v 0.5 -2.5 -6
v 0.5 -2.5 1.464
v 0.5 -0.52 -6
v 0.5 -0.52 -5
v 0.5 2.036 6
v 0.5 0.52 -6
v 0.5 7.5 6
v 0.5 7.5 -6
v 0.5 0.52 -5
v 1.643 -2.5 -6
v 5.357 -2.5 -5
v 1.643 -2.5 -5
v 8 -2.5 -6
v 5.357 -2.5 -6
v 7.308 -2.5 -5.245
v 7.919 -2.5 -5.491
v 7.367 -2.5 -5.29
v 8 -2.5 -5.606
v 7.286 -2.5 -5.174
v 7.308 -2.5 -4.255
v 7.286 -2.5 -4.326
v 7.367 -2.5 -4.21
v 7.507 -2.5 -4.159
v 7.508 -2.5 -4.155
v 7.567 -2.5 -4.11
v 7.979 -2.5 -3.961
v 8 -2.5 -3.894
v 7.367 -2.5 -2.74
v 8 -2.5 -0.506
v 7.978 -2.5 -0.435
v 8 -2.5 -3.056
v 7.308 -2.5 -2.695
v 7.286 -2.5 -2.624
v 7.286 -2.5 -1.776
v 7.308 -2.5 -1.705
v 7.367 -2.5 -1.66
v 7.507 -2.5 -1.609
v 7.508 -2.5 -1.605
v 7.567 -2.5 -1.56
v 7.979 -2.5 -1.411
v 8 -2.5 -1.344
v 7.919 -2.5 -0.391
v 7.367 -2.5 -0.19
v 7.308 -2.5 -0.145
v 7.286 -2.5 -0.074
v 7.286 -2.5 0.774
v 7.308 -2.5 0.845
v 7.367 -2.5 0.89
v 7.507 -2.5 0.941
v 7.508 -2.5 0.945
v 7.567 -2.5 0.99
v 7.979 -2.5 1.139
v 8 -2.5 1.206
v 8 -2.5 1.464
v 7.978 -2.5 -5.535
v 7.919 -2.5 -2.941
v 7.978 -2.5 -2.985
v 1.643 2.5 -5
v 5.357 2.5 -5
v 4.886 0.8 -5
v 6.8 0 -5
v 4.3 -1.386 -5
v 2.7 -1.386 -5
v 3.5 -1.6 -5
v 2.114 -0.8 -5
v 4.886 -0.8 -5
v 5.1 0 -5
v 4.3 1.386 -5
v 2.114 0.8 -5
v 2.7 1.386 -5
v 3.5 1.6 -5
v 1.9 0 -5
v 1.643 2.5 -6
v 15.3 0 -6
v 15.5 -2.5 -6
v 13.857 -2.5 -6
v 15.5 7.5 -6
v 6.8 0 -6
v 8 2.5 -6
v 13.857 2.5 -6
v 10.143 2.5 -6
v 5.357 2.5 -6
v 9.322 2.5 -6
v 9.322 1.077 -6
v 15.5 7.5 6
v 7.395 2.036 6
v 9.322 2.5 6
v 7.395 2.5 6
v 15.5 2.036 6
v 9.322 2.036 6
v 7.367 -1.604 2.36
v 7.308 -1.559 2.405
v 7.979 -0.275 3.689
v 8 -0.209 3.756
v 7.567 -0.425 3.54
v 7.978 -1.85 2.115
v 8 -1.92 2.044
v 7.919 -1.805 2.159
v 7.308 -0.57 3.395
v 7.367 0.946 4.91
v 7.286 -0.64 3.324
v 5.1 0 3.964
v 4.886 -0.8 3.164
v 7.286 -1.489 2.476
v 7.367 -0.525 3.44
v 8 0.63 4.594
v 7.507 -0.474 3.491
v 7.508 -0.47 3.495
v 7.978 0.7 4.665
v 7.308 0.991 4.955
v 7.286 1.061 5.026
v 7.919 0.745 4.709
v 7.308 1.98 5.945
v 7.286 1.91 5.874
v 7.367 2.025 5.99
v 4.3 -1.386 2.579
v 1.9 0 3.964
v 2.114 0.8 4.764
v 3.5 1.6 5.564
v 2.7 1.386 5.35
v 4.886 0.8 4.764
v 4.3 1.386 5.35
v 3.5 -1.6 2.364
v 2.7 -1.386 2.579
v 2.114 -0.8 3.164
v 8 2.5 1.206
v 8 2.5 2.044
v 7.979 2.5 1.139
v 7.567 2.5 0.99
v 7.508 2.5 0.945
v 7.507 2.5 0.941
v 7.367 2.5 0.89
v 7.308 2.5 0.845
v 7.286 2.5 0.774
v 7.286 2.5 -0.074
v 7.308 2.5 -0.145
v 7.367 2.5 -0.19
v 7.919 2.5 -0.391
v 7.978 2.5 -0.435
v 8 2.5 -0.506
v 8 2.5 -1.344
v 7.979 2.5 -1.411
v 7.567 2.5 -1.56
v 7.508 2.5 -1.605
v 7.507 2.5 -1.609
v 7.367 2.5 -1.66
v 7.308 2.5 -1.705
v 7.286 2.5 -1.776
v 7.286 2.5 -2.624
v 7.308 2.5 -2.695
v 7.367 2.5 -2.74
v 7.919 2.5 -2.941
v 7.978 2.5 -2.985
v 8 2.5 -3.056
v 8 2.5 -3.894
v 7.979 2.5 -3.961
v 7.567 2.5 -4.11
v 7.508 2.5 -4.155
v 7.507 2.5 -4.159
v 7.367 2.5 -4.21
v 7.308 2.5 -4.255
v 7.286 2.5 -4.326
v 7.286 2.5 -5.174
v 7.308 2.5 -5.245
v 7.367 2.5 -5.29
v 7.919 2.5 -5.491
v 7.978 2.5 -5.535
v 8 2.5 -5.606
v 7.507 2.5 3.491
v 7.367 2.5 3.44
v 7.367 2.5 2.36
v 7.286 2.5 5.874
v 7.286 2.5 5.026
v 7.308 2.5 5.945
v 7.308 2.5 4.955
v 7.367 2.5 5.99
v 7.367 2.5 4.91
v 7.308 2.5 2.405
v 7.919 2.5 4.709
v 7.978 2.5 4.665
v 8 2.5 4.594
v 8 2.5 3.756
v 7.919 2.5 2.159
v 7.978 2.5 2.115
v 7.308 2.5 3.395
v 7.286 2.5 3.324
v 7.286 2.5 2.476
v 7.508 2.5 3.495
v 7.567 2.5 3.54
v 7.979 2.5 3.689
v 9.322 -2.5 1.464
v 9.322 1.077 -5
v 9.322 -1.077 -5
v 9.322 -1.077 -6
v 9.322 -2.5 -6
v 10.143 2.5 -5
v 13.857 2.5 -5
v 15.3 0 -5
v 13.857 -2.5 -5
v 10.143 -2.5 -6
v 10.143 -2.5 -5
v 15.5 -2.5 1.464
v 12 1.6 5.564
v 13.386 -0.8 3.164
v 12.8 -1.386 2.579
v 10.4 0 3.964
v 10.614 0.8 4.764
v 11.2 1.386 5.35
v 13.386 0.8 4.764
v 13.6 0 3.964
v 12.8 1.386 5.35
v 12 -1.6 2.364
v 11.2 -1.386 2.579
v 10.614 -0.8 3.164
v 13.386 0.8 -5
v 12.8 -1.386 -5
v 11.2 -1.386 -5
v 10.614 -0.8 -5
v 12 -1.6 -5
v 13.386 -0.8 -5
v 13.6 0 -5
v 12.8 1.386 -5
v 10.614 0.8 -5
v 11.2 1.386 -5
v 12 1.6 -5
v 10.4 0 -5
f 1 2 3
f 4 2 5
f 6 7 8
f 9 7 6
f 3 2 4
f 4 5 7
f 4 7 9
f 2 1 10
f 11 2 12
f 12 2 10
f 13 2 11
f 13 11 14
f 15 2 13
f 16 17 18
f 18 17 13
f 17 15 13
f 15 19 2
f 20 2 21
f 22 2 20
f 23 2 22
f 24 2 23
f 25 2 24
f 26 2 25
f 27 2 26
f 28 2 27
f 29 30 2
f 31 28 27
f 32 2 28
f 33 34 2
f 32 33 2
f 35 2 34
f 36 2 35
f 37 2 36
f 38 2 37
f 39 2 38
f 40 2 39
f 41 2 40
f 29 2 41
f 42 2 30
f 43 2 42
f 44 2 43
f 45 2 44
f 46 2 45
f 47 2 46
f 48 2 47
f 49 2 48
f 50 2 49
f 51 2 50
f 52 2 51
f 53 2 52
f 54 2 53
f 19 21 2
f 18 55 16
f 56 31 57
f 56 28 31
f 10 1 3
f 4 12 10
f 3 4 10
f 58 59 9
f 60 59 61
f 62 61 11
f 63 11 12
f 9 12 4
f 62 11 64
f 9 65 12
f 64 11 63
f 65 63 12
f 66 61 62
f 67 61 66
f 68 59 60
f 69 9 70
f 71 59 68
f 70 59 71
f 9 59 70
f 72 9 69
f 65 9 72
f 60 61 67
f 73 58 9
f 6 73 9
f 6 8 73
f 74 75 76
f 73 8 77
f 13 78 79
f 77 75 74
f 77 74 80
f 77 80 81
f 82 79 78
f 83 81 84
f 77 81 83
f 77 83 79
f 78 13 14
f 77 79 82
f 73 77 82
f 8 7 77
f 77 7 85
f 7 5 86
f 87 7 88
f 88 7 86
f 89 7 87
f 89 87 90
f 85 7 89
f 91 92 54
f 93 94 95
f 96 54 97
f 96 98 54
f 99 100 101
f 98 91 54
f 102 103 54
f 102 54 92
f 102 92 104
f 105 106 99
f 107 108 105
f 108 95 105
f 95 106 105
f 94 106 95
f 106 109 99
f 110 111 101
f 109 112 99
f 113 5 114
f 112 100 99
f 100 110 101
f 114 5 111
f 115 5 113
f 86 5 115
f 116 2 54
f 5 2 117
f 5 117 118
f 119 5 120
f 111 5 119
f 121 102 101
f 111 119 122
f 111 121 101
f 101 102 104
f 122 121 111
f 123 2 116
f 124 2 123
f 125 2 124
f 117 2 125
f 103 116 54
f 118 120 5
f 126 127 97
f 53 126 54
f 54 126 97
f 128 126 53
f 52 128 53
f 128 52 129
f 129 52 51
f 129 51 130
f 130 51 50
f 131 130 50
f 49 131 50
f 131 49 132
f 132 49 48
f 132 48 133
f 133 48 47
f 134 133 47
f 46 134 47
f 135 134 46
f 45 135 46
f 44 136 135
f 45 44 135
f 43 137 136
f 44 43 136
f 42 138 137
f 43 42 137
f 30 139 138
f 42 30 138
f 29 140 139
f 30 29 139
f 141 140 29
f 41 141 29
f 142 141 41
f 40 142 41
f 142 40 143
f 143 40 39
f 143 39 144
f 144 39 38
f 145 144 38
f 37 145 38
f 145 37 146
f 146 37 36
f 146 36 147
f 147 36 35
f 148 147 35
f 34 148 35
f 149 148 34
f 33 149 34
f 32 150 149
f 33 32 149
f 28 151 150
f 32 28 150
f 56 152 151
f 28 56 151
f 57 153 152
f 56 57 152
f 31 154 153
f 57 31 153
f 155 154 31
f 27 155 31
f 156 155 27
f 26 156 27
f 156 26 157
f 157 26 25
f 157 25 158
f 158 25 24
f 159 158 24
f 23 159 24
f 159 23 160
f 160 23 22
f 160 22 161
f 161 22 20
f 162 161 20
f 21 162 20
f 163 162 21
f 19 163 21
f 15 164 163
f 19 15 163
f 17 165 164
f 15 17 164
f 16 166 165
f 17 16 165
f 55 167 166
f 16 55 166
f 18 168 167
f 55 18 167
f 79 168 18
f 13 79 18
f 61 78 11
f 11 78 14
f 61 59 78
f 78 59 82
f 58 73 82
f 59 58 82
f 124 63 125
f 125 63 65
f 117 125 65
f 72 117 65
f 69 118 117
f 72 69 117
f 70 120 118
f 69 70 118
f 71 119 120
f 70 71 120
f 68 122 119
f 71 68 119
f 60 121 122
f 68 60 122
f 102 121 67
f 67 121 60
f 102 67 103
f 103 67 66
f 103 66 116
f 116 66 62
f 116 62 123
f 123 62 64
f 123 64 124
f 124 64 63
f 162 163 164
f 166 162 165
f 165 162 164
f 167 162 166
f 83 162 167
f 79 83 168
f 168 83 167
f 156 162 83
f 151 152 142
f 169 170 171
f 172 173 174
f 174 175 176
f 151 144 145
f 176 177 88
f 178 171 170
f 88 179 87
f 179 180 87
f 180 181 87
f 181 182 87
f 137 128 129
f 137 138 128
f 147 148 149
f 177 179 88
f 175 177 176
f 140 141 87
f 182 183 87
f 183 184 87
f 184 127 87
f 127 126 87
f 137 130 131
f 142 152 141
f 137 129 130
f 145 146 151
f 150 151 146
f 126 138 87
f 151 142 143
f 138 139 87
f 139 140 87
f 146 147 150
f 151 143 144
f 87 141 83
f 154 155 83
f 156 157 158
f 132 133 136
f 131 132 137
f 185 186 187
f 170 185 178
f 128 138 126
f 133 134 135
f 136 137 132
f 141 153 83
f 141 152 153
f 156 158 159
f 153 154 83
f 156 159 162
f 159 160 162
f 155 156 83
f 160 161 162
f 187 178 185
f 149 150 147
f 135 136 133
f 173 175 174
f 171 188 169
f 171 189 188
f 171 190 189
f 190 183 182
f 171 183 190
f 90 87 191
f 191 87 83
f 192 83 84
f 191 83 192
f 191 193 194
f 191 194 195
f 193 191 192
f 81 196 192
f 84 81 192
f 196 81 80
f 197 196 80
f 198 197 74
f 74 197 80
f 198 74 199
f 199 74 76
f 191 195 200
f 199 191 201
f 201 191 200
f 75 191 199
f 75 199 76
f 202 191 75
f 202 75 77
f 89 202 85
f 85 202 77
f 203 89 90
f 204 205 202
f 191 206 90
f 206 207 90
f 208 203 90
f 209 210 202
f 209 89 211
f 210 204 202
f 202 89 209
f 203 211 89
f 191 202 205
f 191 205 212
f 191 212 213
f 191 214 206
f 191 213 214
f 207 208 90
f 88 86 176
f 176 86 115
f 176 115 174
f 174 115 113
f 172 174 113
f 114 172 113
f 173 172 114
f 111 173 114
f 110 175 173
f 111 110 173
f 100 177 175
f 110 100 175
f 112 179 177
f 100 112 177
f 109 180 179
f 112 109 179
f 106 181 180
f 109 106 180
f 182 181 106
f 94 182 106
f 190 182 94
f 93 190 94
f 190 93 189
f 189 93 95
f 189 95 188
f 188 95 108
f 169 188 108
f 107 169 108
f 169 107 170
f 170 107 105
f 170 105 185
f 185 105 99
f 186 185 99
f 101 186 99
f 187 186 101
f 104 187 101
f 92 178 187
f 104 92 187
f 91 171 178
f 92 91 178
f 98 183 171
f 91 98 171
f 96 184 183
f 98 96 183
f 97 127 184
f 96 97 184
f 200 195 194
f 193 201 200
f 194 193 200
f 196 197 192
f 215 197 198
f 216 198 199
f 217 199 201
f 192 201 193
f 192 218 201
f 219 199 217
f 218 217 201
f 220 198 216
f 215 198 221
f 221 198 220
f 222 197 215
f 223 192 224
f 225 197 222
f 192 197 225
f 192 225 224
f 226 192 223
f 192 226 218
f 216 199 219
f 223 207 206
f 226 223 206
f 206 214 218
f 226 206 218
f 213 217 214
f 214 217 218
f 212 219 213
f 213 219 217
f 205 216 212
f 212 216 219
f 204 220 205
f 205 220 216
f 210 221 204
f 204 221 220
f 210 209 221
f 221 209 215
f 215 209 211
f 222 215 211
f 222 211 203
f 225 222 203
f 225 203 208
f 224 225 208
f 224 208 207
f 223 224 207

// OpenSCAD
// file: linear_bearing.scad
// LM8UU
lm8uu_od = 19;
lm8uu_length = 29;
lm8uu_id = 10.2;
/**/

// LME8UU
/*
lm8uu_od = 16
lm8uu_length = 25
lm8uu_id = 8.1
/**/


// these values should be copied from your slicing program

layer_height = 0.2;

// SKEINFORGE calculates extrusion_width = layer_height * perimeter_width_over_thickness
// SFACT exposes this directly
// SLIC3R lists extrusion width in the header of exported gcode files as "single wall width"
//        it also allows you to specify as extrusion_width = layer_height * extrusion_width_ratio if you want to force it

extrusion_width = 0.6;

// this should also come from your slicing program, however it's usually an internal value. Most use approximately 0.15

overlap_ratio = 0.15;

// leave this as is, or punch in a value if you have an exact figure in mind
wall_width = extrusion_width * 2 - extrusion_width * overlap_ratio; 

echo("wall_width: ",wall_width);

// this is how many points of contact we have
fins = 5;

// this is how long the points of contact are vs the space between them
// if you make it too small, there's no gaps in the middle ring and we lose the springiness

contact_percent = 20;

// this is how far around the fins twist.
// 100% = the head of one overlaps the tail of the next one
twist_percent = 50;

/****************************************************
	you shouldn't need to touch anything below here
*****************************************************/

// make sure all the circles have parallel segments
$fn=64;


union() {
	// outer ring
	difference() {
		cylinder(r=lm8uu_od / 2, h=lm8uu_length - layer_height);
		translate([0, 0, -1]) cylinder(r=lm8uu_od / 2 - wall_width, h=lm8uu_length + 2);
	}
	
	// inner extruded profile
	linear_extrude(height = lm8uu_length - layer_height, twist=360 / fins * twist_percent / 100, slices = (lm8uu_length - layer_height) * 2)
		for (i=[0:fins - 1])
			rotate(360 / fins * i)
				union() /**/ {
					intersection() {
						difference() {
							circle(lm8uu_od / 2);
							translate([-lm8uu_od, -lm8uu_od]) square([lm8uu_od, lm8uu_od * 2]);
							rotate(360 / fins * contact_percent / 100)
								translate([0, -lm8uu_od])
									square([lm8uu_od, lm8uu_od * 2]);
						}
						difference() {
							circle(r=lm8uu_id / 2 + wall_width);
							circle(r=lm8uu_id / 2);
						}
					}
					
					intersection() {
						rotate(360 / fins * contact_percent / 100) difference() {
							circle(lm8uu_od / 2);
							translate([-lm8uu_od, -lm8uu_od]) square([lm8uu_od, lm8uu_od * 2]);
							rotate(360 / fins * (1 - (contact_percent / 100))) translate([0, -lm8uu_od]) square([lm8uu_od, lm8uu_od * 2]);
						}
						difference() {
							circle(r=lm8uu_id / 2 + wall_width * 2);
							circle(r=lm8uu_id / 2 + wall_width);
						}
					}
					
					rotate(360 / fins) translate([0, -lm8uu_id / 2 - wall_width / 2]) circle(wall_width / 2, $fn=16);
					rotate(360 / fins * contact_percent / 100) translate([0, -lm8uu_id / 2 - wall_width / 2]) circle(wall_width / 2, $fn=16);
					rotate(360 / fins * contact_percent / 100) translate([0, -lm8uu_id / 2 - wall_width * 1.5]) circle(wall_width / 2, $fn=16);
					rotate(360 / fins) translate([0, -lm8uu_id / 2 - wall_width * 1.5]) circle(wall_width / 2, $fn=16);
					rotate(360 / fins * contact_percent / 100) translate([-wall_width / 2, -lm8uu_id / 2 - wall_width * 1.5]) square([wall_width, wall_width]);
					rotate(360 / fins) translate([-wall_width / 2, -lm8uu_id / 2 - wall_width * 1.5]) square([wall_width, wall_width]);
					rotate(360 / fins * contact_percent / 100 + 360 / fins * (1 - (contact_percent / 100)) / 2) translate([-wall_width / 2, -lm8uu_id / 2 - wall_width * 1.5]) mirror([0, 1]) square([wall_width, (lm8uu_od / 2 - wall_width / 2) - (lm8uu_id / 2 + wall_width * 1.5)]);
	
				}
}
// file: carriage-V1.2.scad
// Enlarged Rostock Motor End inspired from Jcrocholl modified by Kolergy to:
//    - Take 12x1000mm smooth rods and KB-12-WW Linear Bearings
//    - Should clip the bearings (Not yet tested)
//    - 0.10° bearing holder angles to compensate play
//    - Changed droove to improve fabricability
//    - T2.5 self locking belt mount based on belt_coupler_v6 from Okatake

 
include <configuration.scad>
use <linear_bearing.scad>
use <belt_coupler_v6_Mod.scad>

H  = carriage_height;
W  = 60;
d  = 22;
th = 4;

width = 76;                  // Caridge widith
//height = carriage_height;

offset = 25;
cutout = 13;                 // Universal joint cutout
middle = 2*offset - width/2;


//% translate([ W/2, 0, 0]) linear_bearing("KB-12-WW");
//% translate([-W/2, 0, 0]) linear_bearing("KB-12-WW");

module conical_groove(d1, d2, w) {
	difference() {
		translate([0, 0, -w  ]) cylinder(r =d1/2+0.1,       h=w*2,     center=true);
		translate([0, 0, -w/2]) cylinder(r1=d2/2  ,r2=d1/2, h=w+0.1,   center=true);
		translate([0, 0, -w  ]) cylinder(r =d2/2,           h=w*2+0.1, center=true);
	}
}

module groove(d1, d2, w) {
		difference() {
			cylinder(r=d1/2+1, h=w, center=true);
			cylinder(r=d2/2  , h=w, center=true);
			translate([0, 0, w/2]) cylinder(r1=d2/2  ,r2=d1/2, h=w/1.5,   center=true);
		}
}

module LB_holder(d, w, H, dH) {
	difference() {
		union() {
			difference() {
				translate([ w,   0, 0]) cylinder(r=d/2+th, h=H+dH,   center=true);
				translate([ w,   0, 0]) cylinder(r=d/2,    h=H+dH+2, center=true);
			}
			translate([ w,  0, -H/2])  conical_groove(d, d-2, dH/4);
			translate([ w,  0,  H/2])  rotate([ 180,  0,  0]) conical_groove(d, d-2, dH/4);
		}
		//translate([ w,  0,  H/2-5])  groove(d+2*th+1, d+2*th-4, 3);
		//translate([ w,  0,  -H/2+5])  groove(d+2*th+1, d+2*th-4, 3);
		translate([ w, d/2+3, 0]) cube([d+2*th+2, d, H+dH+2], center=true);
	}
}

module parallel_joints(reinforced) {
  difference() {
    union() {
      intersection() {   // UJoint Arms
        cube([width, 20, 8], center=true);
        rotate([0, 90, 0]) cylinder(r=5, h=width, center=true);
      }
      intersection() {
        translate([0, 18, 4]) rotate([45, 0, 0])
          cube([width, reinforced, reinforced], center=true);
        translate([0, 0, 20]) cube([width, 35, 40], center=true);
      }
      translate([0, 8, 0]) cube([width, 16, 8], center=true);
    }
    rotate([0, 90, 0]) cylinder(r=1.55, h=80, center=true, $fn=12);

    for (x = [-offset, offset]) {
      translate([x, 5.5, 0])
        cylinder(r=cutout/2, h=100, center=true, $fn=24);
      translate([x, -4.5, 0])
        cube([cutout, 20, 100], center=true);
      translate([x, 0, 0]) rotate([0, 90, 0]) rotate([0, 0, 30])
        cylinder(r=3.3, h=17, center=true, $fn=6);
    }
    translate([0, 2, 0]) cylinder(r=middle, h=100, center=true);
    translate([0, -8, 0]) cube([2*middle, 20, 100], center=true);
  }
}

module belt_mount() {
  difference() {
    union() {
      difference() {
        translate([8, 0, 0]) cube([4, 14, H+4], center=true);
        for (z = [-3.5, 3.5])
          translate([8, 0, z]) cube([5, 14, 3], center=true);
      }
      for (y = [-2.5, 1.5, 6.5]) {
        translate([8, y, 0]) cube([4, 1.2, H+4], center=true);
      }
    }
  }
}

module belt_mount2() {
        translate([8, 8, 0]) 
	difference() {
		union() {
			rotate([90, -90, 0]) coupler();
			translate([0, -17, 0]) cylinder(r=5, h=H+th, center=true, $fn=12);
		}
      	for (y = [-0.7, 0.7]) {
        		translate([0, -3, y*H/2]) rotate([0, 90, 0]) cylinder(r=1.6, h=5, center=true, $fn=12);
		}
	}
}

module belt_mount3() {
	difference(){
		union(){
			translate([9, -5.25, 0]) cube([17, 4.5, H+th], center=true);
			translate([9, 0, (H+th)/2-7]) 
			difference() {
				cube([17, 6, 14], center=true);
				translate([0, 2, -5]) rotate([-45, 0,  0]) cube([18, 6, 12], center=true);
			}
		translate([9, 0, -(H+th)/2+2.]) cube([17, 6, 4], center=true);
		}
	translate([12.0,  0, 0]) cylinder(r=1.6, h=H+th+2, center=true, $fn=12);
	translate([ 3.5,  0, 0]) cylinder(r=1.6, h=H+th+2, center=true, $fn=12);
	translate([ 8.0, 14.35, -(H+th)/2+1]) rotate([90, -90, 0]) belt();
	translate([ 8.2, 13.85, -(H+th)/2+1]) rotate([90, -90, 0]) belt(); // Slightly enlarge the gap of the belt
	translate([8, 0.5, -(H+th)/2+2.5]) cube([3, 6, 6], center=true);
	}
}
module carriage() {
	difference() {
		union() {
			difference() {
				union() {
					translate([ 0,  -th-7, 0]) cube([W, 8, H+4], center=true);
					translate([ 0,  -28,  -H/2+2])  parallel_joints(16);
				}
				translate([ W/2,   0, 0]) cylinder(r=d/2+1,    h=H+4+2, center=true);
				translate([-W/2,   0, 0]) cylinder(r=d/2+1,    h=H+4+2, center=true);
			}
			// 0.10° rotation to compensate play on different axis
			rotate([0, 0.10,  0]) LB_holder(d,  W/2, H, 4); 
			rotate([0.10,  0, 0]) LB_holder(d, -W/2, H, 4);
    			belt_mount3();
		}
		// Grooves
		translate([ W/2,  0,  H/2-5])  groove(d+2*5+1, d+2*th-4, 4);
		translate([ W/2,  0, -H/2+5])  groove(d+2*5+1, d+2*th-4, 4);
		translate([-W/2,  0,  H/2-5])  groove(d+2*5+1, d+2*th-4, 4);
		translate([-W/2,  0, -H/2+5])  groove(d+2*5+1, d+2*th-4, 4);
		// Screw hole for adjustable top endstop.
		translate([15, -17, -H/2+4]) cylinder(r=1.5, h=20, center=true, $fn=12);

	}

}
//translate([ w,  0, 0]) cylinder(r=11  , h=H+dH+2, center=true);
carriage();

// Uncomment the following lines to check endstop alignment.
// use <idler_end.scad>;
// translate([0, 0, -20]) rotate([180, 0, 0]) idler_end();
// file: belt_coupler_v6_Mod.scad
include <configuration.scad>

coupler_w = carriage_height+4;
coupler_h = 4.5;
coupler_d = 15;

belt_w = 15.5;
belt_n = 16;
belt_margin = 0.50;

coupler();

// coupler
module coupler() {
	difference(){
		translate([0,-0.20,-coupler_d/2+belt_w])cube([coupler_w,coupler_h,coupler_d],center=true);
		//for (axis_x = [-1:2:1]) {
			translate([-20,0,-0.01])
				scale(1.02)belt_length(profile = "T2.5", belt_width = belt_w+1, n = belt_n);
		//}
	}
}

module belt() {
	scale(1.02)belt_length(profile = "T2.5", belt_width = belt_w+1, n = belt_n);
}

// belt
//for (axis_x = [-1:2:1]) {
//	translate([2.00*belt_n*axis_x-11.25,0,-0.01])
//		%scale(1.02)belt_length(profile = "T2.5", belt_width = belt_w+1, n = belt_n);
//}

//================================================
// Module Section
//================================================
//Outer Module
module belt_length(profile = "T2.5", belt_width = 6, n = 10)
{

			if ( profile == "T2.5" ) 
				{ 
					_belt_length(
						profile=profile, 
						n = n, 
						belt_width = belt_width,
						tooth_pitch = 2.5,
						backing_thickness = 0.6 + belt_margin
						);
				}
			if ( profile == "T5" ) 
				{ 
					_belt_length(
						profile=profile, 
						n = n, 
						belt_width = belt_width,
						tooth_pitch = 5,
						backing_thickness = 1 + belt_margin
						);
				}
			if ( profile == "T10" ) 
				{ 
					_belt_length(
						profile=profile, 
						n = n, 
						belt_width = belt_width,
						tooth_pitch = 10,
						backing_thickness = 2 + belt_margin
						);
				}
			if ( profile == "MXL" ) 
				{ 
					_belt_length(
						profile=profile, 
						n = n, 
						belt_width = belt_width,
						tooth_pitch = 2.032,
						backing_thickness = 0.64 + belt_margin
						);
				}


}

//inner module
module _belt_length(profile = "T2.5", n = 10, belt_width = 5, tooth_pitch = 2.5, backing_thickness = 0.6)
{

for( i = [0:n])
	{
		union(){

			if ( profile == "T2.5" ) { translate([tooth_pitch*i,0,0])T2_5(width = belt_width);}
			if ( profile == "T5" ) { translate([tooth_pitch*i,0,0])T5(width = belt_width);}
			if ( profile == "T10" ) { translate([tooth_pitch*i,0,0])T10(width = belt_width);}
			if ( profile == "MXL" ) { translate([tooth_pitch*i,0,0])MXL(width = belt_width);}
			translate([(tooth_pitch*i)-(tooth_pitch/2),-backing_thickness,0])cube([tooth_pitch,backing_thickness,belt_width]);
		}
	}
}

//Tooth Form modules - Taken from http://www.thingiverse.com/thing:1662
module T2_5(width = 2)
	{
	linear_extrude(height=width) polygon([[-0.839258,-0.5],[-0.839258,0],[-0.770246,0.021652],[-0.726369,0.079022],[-0.529167,0.620889],[-0.485025,0.67826],[-0.416278,0.699911],[0.416278,0.699911],[0.484849,0.67826],[0.528814,0.620889],[0.726369,0.079022],[0.770114,0.021652],[0.839258,0],[0.839258,-0.5]]);
	}

module T5(width = 2)
	{
	linear_extrude(height=width) polygon([[-1.632126,-0.5],[-1.632126,0],[-1.568549,0.004939],[-1.507539,0.019367],[-1.450023,0.042686],[-1.396912,0.074224],[-1.349125,0.113379],[-1.307581,0.159508],[-1.273186,0.211991],[-1.246868,0.270192],[-1.009802,0.920362],[-0.983414,0.978433],[-0.949018,1.030788],[-0.907524,1.076798],[-0.859829,1.115847],[-0.80682,1.147314],[-0.749402,1.170562],[-0.688471,1.184956],[-0.624921,1.189895],[0.624971,1.189895],[0.688622,1.184956],[0.749607,1.170562],[0.807043,1.147314],[0.860055,1.115847],[0.907754,1.076798],[0.949269,1.030788],[0.9837,0.978433],[1.010193,0.920362],[1.246907,0.270192],[1.273295,0.211991],[1.307726,0.159508],[1.349276,0.113379],[1.397039,0.074224],[1.450111,0.042686],[1.507589,0.019367],[1.568563,0.004939],[1.632126,0],[1.632126,-0.5]]);
	}

module T10(width = 2)
	{
	linear_extrude(height=width) polygon([[-3.06511,-1],[-3.06511,0],[-2.971998,0.007239],[-2.882718,0.028344],[-2.79859,0.062396],[-2.720931,0.108479],[-2.651061,0.165675],[-2.590298,0.233065],[-2.539962,0.309732],[-2.501371,0.394759],[-1.879071,2.105025],[-1.840363,2.190052],[-1.789939,2.266719],[-1.729114,2.334109],[-1.659202,2.391304],[-1.581518,2.437387],[-1.497376,2.47144],[-1.408092,2.492545],[-1.314979,2.499784],[1.314979,2.499784],[1.408091,2.492545],[1.497371,2.47144],[1.581499,2.437387],[1.659158,2.391304],[1.729028,2.334109],[1.789791,2.266719],[1.840127,2.190052],[1.878718,2.105025],[2.501018,0.394759],[2.539726,0.309732],[2.59015,0.233065],[2.650975,0.165675],[2.720887,0.108479],[2.798571,0.062396],[2.882713,0.028344],[2.971997,0.007239],[3.06511,0],[3.06511,-1]]);
	}

module MXL(width = 2)
	{
	linear_extrude(height=width) polygon([[-0.660421,-0.5],[-0.660421,0],[-0.621898,0.006033],[-0.587714,0.023037],[-0.560056,0.049424],[-0.541182,0.083609],[-0.417357,0.424392],[-0.398413,0.458752],[-0.370649,0.48514],[-0.336324,0.502074],[-0.297744,0.508035],[0.297744,0.508035],[0.336268,0.502074],[0.370452,0.48514],[0.39811,0.458752],[0.416983,0.424392],[0.540808,0.083609],[0.559752,0.049424],[0.587516,0.023037],[0.621841,0.006033],[0.660421,0],[0.660421,-0.5]]);
	}
// file: configuration.scad
// Rostock Motor End from Jcrocholl modified by Kolergy to:
//    - Take 12x1000mm smooth rods and KB-12-WW Linear Bearings
//    - Increased base height to locate electronics below the base
//    - Stand on three feets


motor_end_height      =  64;  // Was 44
idler_end_height      =  28;
carriage_height       =  32; // Adapted to cover full length +2 of the Linear bearing
platform_thickness    =   8;
bed_thickness         =  12;
pcb_thickness         =   2;
smooth_rod_length     =1000;
platform_hinge_offset =  33;
carriage_hinge_offset =  22;
tower_radius          = 300;
rod_length            = tower_radius * 1.44;
// main file
// Enlarged Rostock Belt tensioner
//    - T2.5 self locking belt geometry based on belt_coupler_v6 from Okatake

include <configuration.scad>
use <belt_coupler_v6_Mod.scad>
use <carriage-V1.2.scad>

H  = carriage_height;
th = 4;

%carriage();

union(){
	translate([8, 5, 0]) cube([15, 5., 12], center=true);
	difference() {
		translate([8, 0, 0]) cube([15, 5, 12], center=true);
		translate([8, 0, 7.5]) rotate([-45, 0,  0]) cube([17, 5, 15], center=true);
		translate([ 8, 14., -(H+th)/2+0.5]) rotate([90, -90, 0]) belt();
		translate([ 8.2, 14.0, -(H+th)/2+0.6]) rotate([90, -90, 0]) belt(); // Slightly enlarge the gap of the belt

		translate([12, 0, 0]) cylinder(r=1.6, h=H+th+2, center=true, $fn=12);
		translate([ 3.5, 0, 0]) cylinder(r=1.6, h=H+th+2, center=true, $fn=12);
		translate([12, 0, -7]) cylinder(r=3.3, h=4, center=true, $fn=6);
		translate([ 3.5, 0, -7]) cylinder(r=3.3, h=4, center=true, $fn=6);
	}
}
